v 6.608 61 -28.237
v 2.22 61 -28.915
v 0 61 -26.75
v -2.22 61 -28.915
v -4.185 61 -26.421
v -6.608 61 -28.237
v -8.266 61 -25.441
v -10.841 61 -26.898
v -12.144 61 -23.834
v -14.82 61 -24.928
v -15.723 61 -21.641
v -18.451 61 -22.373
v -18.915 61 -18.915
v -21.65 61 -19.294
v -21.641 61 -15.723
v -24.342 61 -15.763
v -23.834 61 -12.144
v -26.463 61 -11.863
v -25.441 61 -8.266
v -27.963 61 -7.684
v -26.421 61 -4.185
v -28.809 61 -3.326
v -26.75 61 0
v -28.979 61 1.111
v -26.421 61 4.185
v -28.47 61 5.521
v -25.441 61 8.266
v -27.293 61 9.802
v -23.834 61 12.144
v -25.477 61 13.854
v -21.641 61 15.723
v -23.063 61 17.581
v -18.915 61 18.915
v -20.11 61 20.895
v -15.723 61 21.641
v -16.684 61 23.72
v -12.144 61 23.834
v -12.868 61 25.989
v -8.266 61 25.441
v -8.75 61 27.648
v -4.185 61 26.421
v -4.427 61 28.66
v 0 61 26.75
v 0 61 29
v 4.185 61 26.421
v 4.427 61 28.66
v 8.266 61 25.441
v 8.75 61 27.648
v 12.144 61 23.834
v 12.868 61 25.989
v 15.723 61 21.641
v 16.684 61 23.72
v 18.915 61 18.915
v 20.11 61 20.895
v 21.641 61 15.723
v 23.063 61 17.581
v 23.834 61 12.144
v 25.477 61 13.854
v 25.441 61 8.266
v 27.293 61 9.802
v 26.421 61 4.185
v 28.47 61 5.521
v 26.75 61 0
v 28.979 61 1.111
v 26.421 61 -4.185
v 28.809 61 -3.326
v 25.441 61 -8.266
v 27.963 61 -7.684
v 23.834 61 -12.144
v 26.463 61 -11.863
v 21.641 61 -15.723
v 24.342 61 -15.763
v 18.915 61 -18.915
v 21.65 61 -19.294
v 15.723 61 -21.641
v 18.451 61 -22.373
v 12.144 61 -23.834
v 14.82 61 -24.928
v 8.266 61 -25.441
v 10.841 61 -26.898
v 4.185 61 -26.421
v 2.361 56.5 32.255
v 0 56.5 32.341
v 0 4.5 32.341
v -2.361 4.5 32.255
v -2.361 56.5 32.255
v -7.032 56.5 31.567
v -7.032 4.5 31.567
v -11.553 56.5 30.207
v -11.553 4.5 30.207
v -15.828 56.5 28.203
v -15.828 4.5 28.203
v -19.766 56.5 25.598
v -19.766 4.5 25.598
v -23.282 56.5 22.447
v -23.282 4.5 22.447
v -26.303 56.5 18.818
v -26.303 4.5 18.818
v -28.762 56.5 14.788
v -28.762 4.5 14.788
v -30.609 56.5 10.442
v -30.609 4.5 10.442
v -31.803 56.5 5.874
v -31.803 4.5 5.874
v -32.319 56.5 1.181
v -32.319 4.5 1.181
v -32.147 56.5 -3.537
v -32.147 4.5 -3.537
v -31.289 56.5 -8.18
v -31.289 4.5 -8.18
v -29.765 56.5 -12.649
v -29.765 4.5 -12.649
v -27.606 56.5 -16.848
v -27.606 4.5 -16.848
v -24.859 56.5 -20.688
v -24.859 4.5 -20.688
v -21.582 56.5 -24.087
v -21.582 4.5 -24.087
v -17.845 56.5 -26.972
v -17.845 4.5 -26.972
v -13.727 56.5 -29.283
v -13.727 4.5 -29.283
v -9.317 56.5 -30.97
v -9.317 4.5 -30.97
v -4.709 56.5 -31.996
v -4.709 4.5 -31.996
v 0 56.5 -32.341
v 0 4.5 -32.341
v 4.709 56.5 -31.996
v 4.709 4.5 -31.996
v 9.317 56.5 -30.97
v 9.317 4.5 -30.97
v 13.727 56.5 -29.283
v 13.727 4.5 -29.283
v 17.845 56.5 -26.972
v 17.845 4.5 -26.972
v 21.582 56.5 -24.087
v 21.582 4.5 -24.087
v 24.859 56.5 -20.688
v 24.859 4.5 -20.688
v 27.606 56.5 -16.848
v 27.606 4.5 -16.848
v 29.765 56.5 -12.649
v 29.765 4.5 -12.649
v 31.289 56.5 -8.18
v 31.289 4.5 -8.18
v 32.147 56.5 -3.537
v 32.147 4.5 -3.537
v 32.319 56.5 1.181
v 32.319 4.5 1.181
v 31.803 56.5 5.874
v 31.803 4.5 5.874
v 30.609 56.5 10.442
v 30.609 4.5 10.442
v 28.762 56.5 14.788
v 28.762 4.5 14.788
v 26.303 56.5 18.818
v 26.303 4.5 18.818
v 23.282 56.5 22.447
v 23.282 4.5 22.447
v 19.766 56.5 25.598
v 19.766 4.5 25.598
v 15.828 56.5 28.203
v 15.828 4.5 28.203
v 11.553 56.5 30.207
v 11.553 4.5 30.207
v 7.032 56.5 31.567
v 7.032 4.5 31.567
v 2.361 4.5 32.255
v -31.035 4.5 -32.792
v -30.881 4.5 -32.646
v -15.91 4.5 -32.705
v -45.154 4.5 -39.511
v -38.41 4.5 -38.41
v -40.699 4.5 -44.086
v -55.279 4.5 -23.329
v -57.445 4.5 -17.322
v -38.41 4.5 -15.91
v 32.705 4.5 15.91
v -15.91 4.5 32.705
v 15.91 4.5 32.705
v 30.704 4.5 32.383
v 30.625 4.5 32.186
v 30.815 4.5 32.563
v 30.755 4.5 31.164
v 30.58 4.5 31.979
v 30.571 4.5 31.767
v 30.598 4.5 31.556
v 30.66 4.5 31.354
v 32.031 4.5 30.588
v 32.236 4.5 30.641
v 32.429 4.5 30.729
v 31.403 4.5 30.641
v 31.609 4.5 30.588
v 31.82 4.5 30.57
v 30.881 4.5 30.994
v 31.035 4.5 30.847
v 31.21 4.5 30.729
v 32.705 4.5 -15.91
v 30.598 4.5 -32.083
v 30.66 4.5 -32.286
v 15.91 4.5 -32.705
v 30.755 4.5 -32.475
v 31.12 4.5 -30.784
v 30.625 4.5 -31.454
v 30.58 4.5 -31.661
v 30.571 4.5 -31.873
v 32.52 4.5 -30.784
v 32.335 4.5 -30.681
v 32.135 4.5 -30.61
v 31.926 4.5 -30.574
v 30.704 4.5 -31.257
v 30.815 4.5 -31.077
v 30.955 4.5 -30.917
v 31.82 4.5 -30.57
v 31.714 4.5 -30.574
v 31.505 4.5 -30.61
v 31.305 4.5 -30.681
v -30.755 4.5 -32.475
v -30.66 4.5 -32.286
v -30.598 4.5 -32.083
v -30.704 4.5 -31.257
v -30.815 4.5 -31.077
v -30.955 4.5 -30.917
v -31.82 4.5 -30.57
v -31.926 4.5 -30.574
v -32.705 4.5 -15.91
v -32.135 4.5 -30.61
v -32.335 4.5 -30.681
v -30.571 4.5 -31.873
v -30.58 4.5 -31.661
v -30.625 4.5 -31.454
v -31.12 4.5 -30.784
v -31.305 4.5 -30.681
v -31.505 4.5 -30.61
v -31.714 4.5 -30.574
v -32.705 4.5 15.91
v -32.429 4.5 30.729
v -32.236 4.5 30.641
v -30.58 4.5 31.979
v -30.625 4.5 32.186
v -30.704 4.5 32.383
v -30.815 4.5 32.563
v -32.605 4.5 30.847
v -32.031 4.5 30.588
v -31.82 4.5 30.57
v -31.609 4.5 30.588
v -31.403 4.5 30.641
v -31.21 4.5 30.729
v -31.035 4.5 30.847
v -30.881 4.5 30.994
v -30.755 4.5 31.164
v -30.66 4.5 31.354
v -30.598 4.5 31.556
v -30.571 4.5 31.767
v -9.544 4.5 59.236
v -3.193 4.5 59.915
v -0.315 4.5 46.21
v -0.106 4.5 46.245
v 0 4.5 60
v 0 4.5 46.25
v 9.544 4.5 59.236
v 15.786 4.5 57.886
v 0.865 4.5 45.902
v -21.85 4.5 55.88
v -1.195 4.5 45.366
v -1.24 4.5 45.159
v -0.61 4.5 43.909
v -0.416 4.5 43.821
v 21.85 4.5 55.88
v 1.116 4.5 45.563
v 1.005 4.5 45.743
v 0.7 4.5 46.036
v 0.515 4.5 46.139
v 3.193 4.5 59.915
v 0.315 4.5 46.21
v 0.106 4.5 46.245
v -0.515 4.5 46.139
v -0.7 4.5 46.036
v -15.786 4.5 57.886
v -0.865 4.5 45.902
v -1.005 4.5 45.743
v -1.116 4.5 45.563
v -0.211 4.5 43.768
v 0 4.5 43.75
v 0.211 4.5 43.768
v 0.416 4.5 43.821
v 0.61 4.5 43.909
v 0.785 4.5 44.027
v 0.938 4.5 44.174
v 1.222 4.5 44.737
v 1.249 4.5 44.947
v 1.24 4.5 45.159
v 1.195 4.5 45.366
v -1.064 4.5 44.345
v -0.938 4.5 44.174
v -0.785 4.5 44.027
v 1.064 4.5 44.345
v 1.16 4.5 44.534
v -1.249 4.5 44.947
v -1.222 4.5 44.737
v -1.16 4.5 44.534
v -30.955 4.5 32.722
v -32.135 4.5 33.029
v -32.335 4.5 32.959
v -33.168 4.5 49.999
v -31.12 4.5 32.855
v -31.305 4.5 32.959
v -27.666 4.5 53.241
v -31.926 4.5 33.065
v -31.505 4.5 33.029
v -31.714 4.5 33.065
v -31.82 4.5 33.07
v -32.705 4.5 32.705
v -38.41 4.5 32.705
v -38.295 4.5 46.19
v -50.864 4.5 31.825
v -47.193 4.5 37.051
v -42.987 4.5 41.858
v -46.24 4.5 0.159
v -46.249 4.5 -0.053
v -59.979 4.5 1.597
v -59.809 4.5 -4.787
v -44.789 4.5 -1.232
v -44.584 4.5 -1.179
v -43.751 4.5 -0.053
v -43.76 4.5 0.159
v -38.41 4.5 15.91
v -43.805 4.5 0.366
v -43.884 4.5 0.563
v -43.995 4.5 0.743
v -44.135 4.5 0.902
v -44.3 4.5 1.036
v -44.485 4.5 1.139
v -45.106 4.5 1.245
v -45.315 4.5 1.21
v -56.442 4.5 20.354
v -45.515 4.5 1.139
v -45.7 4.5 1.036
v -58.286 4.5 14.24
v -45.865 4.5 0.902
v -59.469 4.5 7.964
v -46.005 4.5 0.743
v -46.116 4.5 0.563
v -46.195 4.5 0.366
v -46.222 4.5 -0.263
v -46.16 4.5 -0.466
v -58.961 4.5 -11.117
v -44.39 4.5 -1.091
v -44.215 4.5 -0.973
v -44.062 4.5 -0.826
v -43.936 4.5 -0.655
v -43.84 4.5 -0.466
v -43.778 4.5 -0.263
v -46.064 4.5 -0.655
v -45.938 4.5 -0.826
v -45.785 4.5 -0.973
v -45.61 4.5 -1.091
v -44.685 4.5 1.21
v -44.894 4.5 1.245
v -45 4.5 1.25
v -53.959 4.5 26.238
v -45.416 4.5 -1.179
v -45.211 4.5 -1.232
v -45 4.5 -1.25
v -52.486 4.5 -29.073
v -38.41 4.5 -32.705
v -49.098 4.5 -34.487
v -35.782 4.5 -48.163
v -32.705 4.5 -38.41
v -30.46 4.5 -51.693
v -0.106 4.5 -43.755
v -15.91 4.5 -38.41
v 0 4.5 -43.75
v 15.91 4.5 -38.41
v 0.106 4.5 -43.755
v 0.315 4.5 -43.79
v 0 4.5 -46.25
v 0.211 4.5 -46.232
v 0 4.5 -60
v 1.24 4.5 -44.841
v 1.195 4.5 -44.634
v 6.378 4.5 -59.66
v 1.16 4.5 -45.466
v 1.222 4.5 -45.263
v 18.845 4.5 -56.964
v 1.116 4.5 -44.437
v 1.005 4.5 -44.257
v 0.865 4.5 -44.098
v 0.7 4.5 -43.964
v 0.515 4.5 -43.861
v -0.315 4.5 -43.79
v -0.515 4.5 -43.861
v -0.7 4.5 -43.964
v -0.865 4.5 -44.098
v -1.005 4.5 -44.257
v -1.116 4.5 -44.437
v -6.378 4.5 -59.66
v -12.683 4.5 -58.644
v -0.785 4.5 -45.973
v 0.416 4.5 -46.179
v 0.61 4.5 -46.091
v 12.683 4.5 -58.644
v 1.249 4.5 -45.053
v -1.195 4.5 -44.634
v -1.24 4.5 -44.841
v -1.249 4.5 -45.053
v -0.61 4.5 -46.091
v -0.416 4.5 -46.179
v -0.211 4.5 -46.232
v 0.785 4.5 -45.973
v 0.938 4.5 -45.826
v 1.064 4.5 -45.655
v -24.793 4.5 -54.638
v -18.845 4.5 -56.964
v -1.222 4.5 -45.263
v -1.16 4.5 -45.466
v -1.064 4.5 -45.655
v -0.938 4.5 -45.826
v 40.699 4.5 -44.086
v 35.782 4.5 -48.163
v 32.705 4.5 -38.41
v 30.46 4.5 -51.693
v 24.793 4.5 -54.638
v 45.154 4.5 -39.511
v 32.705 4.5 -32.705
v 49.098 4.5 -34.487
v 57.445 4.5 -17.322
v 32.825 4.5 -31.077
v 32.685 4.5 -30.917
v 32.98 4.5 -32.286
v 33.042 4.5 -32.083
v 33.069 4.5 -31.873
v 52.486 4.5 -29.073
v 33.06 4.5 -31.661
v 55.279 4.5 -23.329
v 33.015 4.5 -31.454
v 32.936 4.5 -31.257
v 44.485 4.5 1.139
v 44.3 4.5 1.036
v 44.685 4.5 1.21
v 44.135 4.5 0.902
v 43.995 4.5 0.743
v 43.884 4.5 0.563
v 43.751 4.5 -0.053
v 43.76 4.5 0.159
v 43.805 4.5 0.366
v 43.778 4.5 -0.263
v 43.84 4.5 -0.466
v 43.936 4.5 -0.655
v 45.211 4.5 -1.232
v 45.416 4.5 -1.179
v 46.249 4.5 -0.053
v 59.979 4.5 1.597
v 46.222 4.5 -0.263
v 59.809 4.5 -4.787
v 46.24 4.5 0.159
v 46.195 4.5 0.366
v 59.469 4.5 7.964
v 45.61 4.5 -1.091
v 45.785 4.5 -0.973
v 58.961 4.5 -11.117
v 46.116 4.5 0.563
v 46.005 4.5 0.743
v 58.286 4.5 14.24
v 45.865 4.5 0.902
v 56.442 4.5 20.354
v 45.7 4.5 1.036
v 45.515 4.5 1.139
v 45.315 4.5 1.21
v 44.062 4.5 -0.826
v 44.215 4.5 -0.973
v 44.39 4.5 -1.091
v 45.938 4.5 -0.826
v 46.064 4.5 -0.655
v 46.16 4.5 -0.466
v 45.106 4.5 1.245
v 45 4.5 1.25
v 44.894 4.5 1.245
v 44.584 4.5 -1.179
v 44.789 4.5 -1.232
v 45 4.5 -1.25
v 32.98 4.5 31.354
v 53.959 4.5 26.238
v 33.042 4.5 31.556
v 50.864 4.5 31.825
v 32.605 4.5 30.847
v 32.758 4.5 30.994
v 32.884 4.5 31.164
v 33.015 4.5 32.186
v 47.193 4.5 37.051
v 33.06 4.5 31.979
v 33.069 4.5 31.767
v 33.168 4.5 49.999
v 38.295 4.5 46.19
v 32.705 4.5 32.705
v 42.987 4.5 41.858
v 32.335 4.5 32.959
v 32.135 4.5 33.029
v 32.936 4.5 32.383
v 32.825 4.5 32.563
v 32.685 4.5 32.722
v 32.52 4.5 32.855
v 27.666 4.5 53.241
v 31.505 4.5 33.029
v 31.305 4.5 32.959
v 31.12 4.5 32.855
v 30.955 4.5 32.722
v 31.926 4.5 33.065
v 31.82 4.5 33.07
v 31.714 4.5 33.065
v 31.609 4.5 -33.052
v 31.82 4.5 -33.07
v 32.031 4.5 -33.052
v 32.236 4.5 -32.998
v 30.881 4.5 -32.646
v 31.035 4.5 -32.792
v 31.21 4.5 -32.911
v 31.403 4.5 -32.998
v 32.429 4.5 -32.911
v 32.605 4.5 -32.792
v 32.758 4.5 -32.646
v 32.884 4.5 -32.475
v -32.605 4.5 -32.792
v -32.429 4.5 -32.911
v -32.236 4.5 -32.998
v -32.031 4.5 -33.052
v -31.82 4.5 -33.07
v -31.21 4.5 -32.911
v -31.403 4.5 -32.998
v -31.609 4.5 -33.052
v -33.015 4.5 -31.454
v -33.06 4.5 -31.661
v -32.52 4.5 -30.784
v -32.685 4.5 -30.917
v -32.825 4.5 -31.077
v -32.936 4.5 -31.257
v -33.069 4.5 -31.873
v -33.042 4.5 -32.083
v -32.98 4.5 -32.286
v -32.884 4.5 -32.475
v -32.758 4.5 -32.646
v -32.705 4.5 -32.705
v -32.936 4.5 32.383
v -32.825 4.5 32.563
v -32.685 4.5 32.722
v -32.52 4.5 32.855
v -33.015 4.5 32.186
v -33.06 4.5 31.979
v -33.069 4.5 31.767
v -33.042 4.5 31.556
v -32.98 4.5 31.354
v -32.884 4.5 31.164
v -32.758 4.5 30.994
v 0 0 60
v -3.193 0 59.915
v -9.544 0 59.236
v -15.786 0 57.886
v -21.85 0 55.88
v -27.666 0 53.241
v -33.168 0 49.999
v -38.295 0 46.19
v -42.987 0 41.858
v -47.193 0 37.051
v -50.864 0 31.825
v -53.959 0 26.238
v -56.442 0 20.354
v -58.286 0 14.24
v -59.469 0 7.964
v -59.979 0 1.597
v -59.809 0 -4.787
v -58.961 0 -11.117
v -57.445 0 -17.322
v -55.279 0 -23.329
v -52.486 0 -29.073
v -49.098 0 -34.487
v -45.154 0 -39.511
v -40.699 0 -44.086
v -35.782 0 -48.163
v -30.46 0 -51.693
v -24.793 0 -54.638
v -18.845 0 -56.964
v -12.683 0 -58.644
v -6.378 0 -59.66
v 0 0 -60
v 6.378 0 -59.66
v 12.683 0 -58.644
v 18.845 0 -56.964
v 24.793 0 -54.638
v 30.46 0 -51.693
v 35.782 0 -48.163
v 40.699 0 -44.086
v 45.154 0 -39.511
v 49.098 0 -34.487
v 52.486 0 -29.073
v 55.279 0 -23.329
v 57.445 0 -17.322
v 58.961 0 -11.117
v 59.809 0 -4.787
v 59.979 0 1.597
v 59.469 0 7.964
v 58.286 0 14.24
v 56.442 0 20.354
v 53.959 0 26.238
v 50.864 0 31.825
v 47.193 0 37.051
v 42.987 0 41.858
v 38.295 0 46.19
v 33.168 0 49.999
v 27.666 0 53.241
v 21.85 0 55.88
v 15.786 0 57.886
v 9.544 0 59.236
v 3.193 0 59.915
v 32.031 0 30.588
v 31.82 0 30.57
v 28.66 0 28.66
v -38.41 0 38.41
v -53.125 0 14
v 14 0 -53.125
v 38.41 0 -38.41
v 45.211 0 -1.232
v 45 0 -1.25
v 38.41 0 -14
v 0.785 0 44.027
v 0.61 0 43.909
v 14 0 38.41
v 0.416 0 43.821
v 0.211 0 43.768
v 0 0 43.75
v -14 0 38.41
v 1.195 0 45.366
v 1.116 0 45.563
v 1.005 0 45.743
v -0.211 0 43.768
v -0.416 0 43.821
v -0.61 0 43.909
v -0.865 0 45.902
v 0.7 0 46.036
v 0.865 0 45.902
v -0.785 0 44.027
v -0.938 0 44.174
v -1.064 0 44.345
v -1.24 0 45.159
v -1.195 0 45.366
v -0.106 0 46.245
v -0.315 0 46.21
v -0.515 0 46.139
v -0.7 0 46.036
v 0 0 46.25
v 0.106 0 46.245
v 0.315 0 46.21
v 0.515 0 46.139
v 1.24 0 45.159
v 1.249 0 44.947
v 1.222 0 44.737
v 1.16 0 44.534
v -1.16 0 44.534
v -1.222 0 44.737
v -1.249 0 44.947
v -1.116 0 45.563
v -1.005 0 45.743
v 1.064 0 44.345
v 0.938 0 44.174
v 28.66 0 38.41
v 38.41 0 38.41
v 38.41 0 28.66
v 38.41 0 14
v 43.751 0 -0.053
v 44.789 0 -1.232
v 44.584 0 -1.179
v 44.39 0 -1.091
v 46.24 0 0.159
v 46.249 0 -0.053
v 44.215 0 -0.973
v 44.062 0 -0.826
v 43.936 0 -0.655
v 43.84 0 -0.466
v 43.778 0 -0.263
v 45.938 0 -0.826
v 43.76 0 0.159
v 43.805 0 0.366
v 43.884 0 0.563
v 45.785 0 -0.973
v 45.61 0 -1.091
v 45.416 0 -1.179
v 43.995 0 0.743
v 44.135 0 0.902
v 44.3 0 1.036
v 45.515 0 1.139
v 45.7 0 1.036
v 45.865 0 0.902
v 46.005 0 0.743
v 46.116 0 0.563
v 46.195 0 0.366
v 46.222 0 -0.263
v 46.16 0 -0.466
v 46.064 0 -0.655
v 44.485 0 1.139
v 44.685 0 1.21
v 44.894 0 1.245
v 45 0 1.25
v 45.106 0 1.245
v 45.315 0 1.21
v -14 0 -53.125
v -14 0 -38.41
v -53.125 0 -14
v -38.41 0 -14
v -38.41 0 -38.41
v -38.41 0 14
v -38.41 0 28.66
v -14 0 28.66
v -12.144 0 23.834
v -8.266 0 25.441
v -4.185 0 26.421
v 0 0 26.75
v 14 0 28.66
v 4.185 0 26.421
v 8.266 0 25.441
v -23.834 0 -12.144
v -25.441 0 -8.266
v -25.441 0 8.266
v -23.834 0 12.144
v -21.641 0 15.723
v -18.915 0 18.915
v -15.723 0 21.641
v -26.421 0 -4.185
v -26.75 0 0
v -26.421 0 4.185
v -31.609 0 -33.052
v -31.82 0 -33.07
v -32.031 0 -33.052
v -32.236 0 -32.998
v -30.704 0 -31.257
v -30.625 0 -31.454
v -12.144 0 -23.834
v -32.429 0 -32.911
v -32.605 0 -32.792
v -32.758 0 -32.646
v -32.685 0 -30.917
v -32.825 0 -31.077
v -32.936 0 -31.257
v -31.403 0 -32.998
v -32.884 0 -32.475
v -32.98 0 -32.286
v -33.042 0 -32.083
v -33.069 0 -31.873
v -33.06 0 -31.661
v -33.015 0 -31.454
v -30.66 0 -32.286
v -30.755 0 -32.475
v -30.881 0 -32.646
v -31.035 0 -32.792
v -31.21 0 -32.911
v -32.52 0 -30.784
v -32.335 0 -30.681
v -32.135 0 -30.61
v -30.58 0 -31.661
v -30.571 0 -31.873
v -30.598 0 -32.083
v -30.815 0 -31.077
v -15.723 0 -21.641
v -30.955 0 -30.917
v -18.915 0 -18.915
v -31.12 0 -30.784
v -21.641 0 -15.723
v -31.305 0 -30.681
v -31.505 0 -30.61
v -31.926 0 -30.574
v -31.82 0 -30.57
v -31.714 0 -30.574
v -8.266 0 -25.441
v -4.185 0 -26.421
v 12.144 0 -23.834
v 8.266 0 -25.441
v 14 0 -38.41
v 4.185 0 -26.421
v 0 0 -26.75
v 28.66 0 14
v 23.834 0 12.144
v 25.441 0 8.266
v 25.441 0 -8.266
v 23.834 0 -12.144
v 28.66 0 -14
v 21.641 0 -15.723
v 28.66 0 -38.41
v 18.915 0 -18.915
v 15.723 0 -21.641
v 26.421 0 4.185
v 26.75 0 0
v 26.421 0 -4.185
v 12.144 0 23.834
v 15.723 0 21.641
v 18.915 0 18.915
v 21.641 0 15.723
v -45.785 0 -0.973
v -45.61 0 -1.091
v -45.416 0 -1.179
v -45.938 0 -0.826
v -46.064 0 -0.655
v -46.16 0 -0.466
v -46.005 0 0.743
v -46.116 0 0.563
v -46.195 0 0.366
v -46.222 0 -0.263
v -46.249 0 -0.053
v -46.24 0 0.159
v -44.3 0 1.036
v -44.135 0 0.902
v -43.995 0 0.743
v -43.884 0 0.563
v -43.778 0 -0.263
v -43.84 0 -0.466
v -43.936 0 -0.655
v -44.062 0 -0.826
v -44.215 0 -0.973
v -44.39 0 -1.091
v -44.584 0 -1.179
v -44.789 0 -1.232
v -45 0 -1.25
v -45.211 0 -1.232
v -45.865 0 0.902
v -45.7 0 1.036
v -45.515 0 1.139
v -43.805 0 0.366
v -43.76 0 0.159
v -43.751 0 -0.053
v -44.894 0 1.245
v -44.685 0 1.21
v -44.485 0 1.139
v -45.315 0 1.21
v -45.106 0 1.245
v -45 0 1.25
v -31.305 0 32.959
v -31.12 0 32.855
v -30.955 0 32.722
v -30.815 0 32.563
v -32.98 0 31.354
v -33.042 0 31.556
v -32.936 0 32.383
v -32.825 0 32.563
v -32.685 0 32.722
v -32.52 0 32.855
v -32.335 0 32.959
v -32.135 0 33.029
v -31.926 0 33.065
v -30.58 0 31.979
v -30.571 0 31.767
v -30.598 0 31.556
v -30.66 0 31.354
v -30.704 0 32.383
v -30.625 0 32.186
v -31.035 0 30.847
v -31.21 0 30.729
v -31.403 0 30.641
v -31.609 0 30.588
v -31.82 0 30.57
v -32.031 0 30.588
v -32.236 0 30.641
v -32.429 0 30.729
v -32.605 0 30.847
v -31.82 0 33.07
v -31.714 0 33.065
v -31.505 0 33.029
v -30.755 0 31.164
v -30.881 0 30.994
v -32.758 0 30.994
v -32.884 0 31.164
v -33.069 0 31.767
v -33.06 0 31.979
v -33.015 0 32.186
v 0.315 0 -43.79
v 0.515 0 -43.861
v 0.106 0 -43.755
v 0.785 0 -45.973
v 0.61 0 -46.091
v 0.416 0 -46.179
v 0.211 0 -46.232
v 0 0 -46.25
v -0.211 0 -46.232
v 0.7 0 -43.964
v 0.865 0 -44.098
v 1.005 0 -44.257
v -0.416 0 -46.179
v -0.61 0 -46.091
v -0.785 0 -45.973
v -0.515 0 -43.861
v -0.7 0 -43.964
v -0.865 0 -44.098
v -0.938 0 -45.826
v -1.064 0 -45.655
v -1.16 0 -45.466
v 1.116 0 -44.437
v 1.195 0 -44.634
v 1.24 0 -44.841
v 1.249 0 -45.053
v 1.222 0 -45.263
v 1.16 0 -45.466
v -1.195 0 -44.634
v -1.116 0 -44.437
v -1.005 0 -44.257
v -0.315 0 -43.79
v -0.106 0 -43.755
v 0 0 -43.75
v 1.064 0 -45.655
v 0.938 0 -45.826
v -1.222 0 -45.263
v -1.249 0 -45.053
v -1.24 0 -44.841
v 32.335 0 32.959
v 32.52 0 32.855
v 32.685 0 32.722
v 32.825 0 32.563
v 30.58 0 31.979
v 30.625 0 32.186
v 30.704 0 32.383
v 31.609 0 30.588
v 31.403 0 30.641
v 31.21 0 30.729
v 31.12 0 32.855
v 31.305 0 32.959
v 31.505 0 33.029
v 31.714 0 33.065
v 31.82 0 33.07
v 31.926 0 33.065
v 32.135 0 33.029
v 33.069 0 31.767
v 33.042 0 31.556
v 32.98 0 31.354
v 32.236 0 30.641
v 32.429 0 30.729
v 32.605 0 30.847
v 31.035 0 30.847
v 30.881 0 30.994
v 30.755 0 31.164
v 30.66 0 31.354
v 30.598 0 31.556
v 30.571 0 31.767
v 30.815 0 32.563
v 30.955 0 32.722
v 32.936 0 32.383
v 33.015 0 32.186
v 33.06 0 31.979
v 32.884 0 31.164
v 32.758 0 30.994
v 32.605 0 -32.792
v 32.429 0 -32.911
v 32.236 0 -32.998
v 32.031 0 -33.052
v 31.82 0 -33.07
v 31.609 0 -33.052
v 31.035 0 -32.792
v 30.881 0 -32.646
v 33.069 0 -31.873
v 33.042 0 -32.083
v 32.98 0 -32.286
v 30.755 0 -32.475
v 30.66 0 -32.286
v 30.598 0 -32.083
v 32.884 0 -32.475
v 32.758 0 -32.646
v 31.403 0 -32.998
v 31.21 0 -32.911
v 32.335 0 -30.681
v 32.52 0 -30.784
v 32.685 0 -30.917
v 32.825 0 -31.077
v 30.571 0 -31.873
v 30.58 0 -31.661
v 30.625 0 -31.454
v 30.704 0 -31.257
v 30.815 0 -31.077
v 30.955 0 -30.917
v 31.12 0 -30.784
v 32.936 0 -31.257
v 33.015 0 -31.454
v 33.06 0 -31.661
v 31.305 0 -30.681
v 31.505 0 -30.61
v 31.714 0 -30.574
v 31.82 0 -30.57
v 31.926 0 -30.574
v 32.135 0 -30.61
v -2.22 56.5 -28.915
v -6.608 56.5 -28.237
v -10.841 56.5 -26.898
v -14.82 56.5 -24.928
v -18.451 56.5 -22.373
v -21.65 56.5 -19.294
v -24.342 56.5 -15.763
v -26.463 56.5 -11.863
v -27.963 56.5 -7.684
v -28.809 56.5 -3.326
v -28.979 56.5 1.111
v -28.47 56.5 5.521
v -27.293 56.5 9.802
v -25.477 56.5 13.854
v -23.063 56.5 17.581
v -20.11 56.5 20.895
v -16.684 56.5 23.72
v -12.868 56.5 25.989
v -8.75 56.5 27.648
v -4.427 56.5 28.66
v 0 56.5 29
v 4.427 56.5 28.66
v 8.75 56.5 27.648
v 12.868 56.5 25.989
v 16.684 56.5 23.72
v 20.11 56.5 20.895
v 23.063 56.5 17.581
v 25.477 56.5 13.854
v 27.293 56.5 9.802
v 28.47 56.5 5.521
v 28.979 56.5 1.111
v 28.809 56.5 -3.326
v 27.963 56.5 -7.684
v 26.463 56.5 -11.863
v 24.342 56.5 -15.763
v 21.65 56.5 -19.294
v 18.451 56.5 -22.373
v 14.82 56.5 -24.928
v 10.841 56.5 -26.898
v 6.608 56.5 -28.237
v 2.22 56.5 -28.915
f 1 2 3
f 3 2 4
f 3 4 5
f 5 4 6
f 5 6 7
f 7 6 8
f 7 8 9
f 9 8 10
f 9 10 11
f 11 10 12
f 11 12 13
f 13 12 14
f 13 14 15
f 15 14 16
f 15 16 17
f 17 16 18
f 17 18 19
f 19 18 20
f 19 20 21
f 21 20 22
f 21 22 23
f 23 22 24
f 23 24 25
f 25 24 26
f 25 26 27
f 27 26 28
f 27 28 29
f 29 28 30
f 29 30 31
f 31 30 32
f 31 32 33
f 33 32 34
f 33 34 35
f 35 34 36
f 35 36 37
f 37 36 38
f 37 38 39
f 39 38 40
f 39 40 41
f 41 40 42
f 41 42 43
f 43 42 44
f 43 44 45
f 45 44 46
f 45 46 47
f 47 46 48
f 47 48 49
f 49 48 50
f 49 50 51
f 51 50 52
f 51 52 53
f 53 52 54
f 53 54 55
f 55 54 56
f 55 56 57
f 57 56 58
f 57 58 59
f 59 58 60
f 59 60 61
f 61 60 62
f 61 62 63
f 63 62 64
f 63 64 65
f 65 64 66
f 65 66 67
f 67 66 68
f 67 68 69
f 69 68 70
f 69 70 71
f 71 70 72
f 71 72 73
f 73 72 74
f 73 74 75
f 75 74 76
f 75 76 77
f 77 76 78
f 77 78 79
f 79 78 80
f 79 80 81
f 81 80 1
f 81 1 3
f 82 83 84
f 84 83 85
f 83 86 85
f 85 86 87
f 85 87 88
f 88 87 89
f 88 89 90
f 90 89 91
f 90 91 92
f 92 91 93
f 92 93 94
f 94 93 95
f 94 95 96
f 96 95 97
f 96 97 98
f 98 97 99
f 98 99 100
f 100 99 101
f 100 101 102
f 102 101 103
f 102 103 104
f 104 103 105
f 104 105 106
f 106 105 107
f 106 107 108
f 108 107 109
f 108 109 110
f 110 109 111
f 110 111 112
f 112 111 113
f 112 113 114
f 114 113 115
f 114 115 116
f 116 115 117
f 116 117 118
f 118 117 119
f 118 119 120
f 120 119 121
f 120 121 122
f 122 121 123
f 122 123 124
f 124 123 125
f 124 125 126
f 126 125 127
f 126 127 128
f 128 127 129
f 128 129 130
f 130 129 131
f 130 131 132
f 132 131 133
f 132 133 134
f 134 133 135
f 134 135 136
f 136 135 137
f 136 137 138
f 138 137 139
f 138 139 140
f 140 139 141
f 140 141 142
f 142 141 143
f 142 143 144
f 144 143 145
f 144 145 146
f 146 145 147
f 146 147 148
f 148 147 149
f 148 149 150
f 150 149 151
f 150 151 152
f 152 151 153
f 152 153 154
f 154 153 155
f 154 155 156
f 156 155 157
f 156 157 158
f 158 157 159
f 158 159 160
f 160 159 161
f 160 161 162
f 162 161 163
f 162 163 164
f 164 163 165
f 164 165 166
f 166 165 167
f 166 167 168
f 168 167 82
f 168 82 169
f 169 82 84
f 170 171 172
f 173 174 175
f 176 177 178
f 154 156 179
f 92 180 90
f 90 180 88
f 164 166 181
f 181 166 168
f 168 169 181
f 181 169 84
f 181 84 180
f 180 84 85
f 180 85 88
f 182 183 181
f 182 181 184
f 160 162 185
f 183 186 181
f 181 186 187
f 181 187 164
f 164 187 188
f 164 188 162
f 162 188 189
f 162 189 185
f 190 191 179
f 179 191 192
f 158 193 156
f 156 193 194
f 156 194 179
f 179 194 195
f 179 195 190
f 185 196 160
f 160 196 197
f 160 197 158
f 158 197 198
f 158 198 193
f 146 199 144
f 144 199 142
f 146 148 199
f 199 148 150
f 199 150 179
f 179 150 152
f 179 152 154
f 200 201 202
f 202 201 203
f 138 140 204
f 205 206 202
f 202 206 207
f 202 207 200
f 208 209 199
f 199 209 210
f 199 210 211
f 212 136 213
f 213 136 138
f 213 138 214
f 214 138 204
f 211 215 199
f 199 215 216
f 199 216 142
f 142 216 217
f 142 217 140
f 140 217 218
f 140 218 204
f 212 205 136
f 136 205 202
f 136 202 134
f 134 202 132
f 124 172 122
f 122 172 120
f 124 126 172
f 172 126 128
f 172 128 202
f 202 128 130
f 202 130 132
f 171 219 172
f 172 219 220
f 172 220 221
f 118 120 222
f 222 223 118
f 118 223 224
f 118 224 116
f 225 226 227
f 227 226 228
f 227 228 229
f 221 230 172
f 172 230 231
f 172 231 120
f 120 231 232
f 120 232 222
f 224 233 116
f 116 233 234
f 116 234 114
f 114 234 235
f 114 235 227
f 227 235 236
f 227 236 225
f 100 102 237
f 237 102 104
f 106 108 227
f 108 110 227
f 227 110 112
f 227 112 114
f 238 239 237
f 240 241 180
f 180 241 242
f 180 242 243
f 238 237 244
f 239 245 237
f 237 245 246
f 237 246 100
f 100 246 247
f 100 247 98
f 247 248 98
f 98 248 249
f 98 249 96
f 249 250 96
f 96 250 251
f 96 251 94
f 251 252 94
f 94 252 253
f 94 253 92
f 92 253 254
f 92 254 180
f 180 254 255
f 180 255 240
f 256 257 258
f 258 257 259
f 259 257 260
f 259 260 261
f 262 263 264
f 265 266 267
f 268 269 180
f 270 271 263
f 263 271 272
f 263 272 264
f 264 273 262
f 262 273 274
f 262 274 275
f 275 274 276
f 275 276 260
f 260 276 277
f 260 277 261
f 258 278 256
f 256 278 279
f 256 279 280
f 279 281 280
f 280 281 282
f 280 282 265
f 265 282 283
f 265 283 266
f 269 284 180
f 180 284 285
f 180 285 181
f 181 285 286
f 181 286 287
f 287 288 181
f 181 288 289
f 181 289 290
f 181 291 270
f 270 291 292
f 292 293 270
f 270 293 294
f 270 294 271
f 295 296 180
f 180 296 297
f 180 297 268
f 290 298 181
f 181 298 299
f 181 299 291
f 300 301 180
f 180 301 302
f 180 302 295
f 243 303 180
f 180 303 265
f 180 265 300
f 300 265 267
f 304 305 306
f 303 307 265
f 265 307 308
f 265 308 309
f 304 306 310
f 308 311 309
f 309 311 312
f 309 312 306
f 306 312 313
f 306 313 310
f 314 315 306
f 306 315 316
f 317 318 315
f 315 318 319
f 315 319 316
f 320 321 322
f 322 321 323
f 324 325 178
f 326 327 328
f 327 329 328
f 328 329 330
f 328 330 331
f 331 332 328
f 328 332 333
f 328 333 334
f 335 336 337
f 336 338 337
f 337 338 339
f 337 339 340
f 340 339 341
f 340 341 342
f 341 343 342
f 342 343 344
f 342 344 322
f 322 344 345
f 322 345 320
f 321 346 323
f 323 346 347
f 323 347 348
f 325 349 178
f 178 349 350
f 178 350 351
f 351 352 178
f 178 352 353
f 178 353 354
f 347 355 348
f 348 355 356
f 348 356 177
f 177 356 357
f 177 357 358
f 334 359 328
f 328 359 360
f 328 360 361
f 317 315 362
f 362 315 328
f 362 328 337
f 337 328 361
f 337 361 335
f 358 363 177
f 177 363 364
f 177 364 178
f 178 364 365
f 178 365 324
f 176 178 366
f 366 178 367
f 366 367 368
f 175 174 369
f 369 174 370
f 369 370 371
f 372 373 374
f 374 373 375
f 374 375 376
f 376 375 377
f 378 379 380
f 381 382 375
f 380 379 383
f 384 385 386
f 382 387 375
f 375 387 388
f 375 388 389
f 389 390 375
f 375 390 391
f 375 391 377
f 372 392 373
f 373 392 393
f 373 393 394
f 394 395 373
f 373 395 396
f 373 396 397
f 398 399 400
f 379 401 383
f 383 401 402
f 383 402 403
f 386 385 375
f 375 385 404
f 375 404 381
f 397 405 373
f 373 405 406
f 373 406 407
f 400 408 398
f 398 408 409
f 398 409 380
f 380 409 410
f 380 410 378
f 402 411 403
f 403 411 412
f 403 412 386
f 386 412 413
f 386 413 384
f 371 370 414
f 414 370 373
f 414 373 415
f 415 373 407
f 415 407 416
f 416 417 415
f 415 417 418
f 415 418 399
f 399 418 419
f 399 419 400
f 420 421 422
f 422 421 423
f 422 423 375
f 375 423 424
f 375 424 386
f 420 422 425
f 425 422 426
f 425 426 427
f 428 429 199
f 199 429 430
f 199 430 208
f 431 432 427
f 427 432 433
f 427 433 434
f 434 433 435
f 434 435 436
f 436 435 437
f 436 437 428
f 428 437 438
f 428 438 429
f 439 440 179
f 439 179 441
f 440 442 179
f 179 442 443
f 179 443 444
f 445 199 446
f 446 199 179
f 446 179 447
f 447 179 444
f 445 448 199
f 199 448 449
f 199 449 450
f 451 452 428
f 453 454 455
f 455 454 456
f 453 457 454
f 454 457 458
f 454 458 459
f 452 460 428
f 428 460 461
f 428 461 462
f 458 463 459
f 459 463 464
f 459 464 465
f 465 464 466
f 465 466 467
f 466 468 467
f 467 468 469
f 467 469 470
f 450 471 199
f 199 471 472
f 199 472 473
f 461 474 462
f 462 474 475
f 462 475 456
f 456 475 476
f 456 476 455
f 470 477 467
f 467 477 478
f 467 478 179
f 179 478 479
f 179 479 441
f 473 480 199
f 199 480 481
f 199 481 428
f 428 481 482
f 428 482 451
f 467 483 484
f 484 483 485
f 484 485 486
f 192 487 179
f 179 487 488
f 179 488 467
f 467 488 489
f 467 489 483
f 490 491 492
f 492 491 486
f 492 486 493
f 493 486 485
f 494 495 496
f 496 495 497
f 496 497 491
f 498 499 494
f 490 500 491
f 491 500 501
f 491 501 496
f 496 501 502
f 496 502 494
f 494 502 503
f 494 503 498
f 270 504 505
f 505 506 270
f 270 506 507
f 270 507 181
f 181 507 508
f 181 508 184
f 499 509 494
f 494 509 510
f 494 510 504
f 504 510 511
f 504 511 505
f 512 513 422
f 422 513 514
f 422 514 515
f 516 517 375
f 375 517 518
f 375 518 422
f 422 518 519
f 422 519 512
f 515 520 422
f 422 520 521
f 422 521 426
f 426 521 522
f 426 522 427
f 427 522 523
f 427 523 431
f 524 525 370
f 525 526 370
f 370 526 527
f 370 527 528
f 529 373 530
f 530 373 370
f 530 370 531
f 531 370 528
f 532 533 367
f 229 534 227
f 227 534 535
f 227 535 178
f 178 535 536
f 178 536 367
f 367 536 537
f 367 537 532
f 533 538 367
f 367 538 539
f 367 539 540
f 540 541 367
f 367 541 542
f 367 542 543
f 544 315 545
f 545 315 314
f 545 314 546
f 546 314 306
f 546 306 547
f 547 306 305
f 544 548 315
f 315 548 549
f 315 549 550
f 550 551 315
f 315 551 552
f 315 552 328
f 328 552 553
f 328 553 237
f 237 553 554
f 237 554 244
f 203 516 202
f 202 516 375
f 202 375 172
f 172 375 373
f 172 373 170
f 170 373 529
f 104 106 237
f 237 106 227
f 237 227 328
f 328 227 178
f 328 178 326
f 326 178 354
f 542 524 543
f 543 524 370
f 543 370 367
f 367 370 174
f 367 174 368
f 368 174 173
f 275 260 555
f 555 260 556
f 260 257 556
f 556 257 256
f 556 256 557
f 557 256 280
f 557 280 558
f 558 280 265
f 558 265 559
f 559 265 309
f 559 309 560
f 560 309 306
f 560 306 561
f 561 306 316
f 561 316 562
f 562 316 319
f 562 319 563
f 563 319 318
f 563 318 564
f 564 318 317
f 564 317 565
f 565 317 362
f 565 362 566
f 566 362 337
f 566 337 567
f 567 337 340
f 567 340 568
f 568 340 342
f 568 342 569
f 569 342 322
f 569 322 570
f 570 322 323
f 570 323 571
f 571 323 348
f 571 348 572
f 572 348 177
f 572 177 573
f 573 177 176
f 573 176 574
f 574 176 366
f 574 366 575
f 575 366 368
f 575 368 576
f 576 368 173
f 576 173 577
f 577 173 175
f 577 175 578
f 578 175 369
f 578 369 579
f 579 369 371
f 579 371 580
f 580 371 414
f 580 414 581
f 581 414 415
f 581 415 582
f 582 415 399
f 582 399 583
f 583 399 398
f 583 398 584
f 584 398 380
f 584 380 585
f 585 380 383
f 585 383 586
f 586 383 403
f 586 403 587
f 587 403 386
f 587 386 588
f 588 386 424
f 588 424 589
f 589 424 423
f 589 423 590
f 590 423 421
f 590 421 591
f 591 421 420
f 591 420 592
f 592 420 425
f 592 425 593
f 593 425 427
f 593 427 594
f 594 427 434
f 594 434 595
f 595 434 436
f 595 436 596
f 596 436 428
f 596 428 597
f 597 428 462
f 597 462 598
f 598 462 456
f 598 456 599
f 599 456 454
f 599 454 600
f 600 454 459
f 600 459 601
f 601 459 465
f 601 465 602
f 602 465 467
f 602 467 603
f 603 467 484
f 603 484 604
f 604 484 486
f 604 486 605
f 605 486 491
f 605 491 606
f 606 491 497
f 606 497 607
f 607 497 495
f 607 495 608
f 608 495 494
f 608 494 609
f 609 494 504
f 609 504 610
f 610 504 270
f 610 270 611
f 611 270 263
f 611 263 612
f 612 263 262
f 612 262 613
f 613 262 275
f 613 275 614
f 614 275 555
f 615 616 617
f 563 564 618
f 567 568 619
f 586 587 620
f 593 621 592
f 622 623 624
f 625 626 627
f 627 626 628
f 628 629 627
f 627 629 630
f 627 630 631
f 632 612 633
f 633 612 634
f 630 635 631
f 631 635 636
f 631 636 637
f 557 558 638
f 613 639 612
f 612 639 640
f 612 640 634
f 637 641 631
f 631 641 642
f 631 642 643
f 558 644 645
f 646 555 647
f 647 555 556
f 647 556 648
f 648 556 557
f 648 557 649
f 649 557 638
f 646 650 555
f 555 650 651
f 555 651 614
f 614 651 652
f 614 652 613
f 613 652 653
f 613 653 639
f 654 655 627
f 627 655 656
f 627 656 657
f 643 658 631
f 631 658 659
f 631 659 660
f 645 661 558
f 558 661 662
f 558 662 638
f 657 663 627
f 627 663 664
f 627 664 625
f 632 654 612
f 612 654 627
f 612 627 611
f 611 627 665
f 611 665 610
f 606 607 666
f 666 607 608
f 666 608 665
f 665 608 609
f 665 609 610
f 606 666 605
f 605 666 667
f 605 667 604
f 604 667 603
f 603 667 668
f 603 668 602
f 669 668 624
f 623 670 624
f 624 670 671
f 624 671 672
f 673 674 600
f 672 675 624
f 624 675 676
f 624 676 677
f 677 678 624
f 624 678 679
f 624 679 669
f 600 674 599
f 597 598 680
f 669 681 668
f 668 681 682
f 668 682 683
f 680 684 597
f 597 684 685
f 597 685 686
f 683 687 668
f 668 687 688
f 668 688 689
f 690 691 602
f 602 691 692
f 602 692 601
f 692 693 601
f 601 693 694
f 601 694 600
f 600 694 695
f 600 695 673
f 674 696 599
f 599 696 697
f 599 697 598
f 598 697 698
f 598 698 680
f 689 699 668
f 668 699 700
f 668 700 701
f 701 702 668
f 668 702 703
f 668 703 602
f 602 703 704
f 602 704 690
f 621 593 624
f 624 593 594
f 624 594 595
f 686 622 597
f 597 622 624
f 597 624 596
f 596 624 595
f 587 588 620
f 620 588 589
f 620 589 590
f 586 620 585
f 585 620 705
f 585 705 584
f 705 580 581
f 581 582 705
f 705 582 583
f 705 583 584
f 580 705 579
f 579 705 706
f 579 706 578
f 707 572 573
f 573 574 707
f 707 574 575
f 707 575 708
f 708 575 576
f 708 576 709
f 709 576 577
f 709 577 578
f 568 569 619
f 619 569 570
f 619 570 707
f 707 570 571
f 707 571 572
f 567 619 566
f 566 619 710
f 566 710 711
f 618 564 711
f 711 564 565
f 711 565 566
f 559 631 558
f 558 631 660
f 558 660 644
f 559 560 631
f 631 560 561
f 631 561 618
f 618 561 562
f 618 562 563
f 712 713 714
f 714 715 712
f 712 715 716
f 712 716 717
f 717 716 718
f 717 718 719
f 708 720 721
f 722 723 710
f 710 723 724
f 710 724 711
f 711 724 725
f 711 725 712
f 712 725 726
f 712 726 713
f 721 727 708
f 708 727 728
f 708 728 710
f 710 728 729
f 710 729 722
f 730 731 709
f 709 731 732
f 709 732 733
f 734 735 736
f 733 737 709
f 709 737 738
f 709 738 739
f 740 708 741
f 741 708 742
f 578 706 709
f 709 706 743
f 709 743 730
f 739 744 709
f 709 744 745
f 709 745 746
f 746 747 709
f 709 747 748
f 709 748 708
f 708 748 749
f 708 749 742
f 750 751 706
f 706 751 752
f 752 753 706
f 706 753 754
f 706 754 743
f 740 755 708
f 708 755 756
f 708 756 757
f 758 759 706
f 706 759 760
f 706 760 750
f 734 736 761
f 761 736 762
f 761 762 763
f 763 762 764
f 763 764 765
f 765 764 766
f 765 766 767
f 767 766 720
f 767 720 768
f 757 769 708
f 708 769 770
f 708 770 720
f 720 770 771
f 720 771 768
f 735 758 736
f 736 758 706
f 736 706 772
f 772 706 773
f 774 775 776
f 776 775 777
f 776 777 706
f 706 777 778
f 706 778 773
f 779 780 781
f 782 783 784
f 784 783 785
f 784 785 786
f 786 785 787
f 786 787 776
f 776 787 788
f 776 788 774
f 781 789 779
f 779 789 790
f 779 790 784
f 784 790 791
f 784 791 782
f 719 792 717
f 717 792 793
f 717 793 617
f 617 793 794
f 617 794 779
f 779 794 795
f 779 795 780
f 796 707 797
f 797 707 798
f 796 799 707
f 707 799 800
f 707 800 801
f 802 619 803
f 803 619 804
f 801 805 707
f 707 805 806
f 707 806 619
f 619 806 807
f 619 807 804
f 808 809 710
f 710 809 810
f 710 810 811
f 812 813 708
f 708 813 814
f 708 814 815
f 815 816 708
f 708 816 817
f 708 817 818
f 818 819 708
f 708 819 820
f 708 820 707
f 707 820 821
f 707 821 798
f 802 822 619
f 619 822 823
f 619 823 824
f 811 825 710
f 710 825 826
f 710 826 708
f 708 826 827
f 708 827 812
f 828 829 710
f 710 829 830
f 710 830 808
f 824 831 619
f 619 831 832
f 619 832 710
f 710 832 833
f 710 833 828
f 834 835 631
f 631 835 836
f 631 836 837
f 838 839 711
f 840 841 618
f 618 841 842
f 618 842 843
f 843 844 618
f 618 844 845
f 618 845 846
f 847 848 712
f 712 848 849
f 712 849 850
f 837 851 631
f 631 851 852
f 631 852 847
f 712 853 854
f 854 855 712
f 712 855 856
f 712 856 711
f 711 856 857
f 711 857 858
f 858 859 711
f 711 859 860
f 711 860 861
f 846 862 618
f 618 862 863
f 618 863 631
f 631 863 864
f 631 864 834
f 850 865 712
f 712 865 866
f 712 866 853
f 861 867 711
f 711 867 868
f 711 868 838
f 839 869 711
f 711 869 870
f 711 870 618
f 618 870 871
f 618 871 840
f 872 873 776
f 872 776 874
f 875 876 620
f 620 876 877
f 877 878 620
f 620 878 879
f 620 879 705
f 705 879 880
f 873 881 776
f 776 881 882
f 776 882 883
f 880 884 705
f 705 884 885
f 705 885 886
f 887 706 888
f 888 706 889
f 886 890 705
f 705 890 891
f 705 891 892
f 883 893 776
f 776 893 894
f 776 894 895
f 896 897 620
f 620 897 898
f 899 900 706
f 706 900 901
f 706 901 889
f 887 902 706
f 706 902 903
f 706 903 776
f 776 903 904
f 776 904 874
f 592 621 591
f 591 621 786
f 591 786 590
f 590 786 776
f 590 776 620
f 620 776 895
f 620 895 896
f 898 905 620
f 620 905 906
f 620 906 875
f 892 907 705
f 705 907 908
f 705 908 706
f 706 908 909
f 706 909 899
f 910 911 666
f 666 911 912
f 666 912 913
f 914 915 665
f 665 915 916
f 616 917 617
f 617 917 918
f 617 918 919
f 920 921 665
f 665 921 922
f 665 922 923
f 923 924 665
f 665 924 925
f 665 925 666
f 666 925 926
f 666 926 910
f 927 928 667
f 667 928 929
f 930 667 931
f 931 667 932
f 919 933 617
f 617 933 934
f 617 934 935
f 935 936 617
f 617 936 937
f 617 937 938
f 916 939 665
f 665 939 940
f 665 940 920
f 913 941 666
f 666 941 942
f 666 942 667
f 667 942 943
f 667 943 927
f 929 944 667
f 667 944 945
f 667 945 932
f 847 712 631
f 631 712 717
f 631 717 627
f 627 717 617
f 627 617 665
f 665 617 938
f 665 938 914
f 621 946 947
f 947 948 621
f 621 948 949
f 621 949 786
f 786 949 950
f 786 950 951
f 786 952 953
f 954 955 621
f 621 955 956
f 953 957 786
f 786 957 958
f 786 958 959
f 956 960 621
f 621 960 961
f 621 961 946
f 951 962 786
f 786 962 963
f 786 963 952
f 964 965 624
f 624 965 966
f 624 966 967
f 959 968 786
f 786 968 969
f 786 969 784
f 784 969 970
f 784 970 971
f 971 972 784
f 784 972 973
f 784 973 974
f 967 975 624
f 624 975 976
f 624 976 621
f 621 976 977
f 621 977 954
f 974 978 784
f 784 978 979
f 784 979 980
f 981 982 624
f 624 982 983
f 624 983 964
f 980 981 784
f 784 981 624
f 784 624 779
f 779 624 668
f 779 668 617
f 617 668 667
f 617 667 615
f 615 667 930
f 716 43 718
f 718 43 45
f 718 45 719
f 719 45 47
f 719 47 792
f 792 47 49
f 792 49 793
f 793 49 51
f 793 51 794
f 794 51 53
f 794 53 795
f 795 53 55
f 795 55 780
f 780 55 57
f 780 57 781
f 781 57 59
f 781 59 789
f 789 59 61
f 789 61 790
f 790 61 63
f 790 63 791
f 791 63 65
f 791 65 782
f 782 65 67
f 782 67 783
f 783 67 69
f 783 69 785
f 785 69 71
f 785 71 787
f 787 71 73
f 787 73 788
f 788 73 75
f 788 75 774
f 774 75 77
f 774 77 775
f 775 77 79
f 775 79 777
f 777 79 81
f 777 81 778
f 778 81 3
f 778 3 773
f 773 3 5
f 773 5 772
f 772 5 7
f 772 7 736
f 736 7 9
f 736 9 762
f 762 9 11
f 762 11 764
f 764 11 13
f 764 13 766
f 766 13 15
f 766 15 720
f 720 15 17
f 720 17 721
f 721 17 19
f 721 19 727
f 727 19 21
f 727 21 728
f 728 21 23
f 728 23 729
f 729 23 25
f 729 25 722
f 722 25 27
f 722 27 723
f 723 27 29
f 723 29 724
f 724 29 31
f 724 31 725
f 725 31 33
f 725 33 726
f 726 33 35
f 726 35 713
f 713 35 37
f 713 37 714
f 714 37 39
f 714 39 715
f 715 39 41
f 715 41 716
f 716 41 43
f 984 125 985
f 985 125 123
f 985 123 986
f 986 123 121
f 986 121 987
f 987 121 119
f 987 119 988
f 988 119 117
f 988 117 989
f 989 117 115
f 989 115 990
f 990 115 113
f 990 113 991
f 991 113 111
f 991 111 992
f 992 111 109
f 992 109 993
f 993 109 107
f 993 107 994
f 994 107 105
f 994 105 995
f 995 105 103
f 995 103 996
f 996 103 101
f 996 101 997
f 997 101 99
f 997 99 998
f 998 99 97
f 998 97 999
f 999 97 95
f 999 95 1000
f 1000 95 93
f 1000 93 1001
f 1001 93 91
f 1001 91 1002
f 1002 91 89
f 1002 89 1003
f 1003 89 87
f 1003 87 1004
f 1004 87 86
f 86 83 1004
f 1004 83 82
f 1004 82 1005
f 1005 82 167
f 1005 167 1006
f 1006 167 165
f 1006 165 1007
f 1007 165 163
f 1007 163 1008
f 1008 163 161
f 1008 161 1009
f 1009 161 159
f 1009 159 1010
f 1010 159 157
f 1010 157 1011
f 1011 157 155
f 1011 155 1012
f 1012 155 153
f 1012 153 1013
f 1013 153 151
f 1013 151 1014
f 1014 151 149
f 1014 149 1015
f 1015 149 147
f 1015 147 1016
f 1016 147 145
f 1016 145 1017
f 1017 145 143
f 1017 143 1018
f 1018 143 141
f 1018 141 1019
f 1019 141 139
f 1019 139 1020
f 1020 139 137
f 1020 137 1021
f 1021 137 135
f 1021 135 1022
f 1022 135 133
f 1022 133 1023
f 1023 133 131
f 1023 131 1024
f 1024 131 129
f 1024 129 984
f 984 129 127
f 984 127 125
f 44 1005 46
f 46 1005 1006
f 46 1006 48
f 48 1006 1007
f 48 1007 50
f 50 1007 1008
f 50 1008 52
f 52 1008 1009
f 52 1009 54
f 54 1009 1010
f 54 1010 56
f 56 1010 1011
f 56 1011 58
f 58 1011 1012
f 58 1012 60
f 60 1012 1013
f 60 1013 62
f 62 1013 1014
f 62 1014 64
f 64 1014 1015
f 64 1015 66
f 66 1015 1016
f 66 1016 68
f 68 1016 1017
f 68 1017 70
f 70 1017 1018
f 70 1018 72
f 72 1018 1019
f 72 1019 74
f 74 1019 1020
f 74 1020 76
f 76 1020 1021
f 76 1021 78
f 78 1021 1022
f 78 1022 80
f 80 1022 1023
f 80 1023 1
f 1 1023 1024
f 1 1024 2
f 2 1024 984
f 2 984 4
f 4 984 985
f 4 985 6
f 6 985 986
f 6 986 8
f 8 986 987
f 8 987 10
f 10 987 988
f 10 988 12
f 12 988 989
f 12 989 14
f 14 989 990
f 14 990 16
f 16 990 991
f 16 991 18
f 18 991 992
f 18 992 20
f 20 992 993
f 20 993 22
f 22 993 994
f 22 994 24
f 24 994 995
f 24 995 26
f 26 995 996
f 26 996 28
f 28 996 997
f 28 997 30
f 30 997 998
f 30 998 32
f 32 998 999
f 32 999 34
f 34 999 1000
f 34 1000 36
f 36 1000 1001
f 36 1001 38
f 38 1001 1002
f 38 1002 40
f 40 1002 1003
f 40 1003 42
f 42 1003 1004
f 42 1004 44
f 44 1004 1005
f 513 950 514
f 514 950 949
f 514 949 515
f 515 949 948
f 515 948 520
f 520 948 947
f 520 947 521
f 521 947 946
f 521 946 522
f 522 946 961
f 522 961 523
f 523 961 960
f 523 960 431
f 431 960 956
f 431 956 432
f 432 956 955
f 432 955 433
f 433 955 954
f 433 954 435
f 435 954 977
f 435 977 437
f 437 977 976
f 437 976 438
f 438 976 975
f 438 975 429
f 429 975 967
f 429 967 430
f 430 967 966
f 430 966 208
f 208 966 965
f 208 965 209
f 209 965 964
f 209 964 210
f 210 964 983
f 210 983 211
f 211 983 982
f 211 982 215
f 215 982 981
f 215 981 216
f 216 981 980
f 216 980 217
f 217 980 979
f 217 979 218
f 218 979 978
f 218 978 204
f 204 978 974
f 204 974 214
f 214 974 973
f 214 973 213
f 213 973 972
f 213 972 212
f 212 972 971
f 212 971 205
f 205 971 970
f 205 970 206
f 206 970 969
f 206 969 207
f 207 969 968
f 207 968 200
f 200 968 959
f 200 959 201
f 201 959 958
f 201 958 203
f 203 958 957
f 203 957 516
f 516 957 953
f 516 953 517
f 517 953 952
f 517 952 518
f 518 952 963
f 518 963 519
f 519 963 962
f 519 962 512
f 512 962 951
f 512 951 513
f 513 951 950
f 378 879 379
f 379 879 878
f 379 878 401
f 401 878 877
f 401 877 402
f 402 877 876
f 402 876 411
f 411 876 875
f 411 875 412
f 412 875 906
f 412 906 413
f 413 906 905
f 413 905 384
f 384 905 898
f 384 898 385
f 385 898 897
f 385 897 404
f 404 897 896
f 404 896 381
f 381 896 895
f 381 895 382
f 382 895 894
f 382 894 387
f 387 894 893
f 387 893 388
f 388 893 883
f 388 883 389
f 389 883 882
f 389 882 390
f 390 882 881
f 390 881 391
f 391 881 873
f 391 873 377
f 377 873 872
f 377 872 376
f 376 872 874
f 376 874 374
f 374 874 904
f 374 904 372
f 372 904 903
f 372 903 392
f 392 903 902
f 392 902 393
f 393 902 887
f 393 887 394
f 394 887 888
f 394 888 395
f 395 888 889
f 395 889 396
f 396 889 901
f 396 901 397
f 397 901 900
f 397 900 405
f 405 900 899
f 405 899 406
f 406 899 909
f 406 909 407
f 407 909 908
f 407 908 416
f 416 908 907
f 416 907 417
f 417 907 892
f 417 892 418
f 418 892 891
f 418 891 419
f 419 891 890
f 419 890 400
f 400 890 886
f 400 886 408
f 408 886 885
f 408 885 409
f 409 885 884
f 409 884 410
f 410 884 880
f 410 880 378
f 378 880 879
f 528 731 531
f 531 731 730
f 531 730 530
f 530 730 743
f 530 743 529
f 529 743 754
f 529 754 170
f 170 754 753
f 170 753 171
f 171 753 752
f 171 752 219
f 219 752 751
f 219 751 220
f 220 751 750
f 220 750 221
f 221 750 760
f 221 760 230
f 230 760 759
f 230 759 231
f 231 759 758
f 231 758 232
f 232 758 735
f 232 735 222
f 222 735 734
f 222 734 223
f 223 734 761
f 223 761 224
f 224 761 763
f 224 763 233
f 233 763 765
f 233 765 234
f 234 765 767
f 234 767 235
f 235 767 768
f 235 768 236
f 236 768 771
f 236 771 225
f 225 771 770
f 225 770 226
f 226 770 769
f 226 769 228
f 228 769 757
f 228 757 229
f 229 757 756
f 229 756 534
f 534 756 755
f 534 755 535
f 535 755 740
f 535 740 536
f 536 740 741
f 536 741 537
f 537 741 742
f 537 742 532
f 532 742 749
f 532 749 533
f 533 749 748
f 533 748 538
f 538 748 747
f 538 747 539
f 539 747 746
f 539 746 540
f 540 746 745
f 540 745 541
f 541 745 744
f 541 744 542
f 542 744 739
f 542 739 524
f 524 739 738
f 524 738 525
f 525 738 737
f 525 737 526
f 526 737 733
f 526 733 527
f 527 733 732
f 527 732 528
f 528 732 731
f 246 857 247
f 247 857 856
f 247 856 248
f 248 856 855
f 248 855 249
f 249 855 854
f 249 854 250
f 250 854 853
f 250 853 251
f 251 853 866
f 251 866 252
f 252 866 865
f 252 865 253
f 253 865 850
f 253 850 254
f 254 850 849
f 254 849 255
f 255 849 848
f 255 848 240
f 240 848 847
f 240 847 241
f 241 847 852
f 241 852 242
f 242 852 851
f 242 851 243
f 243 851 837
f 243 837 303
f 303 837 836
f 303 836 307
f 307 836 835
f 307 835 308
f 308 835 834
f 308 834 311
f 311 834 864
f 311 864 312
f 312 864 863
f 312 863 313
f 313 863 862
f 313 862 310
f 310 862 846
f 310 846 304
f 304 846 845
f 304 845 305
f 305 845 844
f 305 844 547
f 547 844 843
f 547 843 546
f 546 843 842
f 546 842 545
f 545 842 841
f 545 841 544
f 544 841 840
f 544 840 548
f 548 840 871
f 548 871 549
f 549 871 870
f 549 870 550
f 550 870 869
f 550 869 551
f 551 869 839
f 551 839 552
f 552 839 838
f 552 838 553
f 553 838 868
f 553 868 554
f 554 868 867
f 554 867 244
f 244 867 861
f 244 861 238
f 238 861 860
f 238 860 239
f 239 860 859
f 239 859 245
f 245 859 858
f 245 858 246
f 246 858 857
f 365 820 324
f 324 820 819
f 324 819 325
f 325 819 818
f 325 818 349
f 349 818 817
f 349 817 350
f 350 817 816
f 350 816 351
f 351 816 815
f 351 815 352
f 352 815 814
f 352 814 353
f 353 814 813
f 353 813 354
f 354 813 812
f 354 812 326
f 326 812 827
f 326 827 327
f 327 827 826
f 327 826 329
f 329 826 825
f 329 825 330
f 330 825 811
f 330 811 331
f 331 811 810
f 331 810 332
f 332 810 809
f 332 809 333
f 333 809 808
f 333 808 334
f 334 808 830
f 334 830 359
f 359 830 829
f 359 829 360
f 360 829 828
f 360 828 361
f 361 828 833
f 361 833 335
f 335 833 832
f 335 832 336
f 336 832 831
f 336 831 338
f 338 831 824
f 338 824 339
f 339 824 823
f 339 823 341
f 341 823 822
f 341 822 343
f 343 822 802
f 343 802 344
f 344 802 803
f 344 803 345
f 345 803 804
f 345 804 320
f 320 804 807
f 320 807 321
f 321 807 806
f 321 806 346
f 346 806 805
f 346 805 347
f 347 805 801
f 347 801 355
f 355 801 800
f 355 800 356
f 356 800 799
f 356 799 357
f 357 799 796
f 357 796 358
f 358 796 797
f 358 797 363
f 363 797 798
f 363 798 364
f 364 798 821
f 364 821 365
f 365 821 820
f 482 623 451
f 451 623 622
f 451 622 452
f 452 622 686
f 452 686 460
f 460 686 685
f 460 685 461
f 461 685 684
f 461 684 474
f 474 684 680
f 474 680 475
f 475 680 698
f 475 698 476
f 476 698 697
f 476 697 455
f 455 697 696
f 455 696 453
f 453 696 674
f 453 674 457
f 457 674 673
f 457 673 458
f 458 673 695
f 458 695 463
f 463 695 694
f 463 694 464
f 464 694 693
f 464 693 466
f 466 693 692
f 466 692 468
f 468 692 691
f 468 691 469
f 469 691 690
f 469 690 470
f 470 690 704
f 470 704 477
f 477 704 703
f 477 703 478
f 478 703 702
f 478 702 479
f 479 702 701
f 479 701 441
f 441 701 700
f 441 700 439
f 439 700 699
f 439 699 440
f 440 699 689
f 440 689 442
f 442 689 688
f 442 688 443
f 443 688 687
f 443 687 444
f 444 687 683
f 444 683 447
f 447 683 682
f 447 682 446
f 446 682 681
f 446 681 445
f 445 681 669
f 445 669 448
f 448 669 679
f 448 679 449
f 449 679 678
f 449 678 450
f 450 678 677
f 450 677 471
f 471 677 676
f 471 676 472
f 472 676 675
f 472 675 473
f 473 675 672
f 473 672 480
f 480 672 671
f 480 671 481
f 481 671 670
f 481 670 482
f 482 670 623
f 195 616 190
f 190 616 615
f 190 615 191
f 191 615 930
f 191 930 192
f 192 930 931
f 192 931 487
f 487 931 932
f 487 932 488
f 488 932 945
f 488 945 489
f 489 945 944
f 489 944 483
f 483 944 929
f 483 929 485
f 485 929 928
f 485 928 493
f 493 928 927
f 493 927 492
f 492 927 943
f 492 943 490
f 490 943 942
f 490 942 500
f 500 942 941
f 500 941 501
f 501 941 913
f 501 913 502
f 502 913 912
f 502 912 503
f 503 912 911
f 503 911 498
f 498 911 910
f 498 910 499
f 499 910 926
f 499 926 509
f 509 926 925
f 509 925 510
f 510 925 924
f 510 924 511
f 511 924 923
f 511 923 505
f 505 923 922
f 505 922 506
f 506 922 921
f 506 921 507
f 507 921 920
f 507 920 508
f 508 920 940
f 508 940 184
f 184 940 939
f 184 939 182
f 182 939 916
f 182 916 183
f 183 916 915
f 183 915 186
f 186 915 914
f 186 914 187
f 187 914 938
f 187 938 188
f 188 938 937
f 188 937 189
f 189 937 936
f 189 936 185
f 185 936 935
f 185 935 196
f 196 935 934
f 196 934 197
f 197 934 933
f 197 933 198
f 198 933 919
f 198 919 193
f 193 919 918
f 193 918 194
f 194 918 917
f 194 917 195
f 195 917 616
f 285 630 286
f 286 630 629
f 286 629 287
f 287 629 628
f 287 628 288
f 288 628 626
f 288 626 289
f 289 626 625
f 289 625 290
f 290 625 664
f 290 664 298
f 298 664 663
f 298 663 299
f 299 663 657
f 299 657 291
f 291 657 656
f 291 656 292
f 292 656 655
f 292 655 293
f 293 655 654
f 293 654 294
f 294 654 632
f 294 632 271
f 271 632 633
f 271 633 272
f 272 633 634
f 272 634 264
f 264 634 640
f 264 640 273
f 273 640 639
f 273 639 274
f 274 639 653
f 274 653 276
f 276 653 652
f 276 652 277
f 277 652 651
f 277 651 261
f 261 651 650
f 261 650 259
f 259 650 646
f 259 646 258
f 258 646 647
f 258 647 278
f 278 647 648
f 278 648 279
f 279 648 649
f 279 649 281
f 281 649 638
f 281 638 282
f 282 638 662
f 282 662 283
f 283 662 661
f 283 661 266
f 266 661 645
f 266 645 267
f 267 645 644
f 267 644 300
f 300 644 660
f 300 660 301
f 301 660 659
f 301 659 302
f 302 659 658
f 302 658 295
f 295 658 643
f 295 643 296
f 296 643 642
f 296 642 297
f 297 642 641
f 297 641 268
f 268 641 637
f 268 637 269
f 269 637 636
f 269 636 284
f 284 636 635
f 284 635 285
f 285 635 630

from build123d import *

# Parameters (mm, degrees)
SKETCH1_R               = 60
BOSS_EXTRUDE1_DEPTH     = 4.5
SKETCH2_R               = 29.275
BOSS_EXTRUDE2_DEPTH     = 56.5
CUT_EXTRUDE1_DEPTH      = 105.503588455
CUT_EXTRUDE1_DEPTH_BACK = 105.503588455
SKETCH3_R               = 26.75
SKETCH4_R               = 32.341067561
SKETCH4_R_2             = 29.275
BOSS_EXTRUDE3_DEPTH     = 56.5
CUT_EXTRUDE2_START      = -4.5
SKETCH5_R               = 32.341067561
SKETCH5_R_2             = 29
CUT_EXTRUDE2_DEPTH      = 4.5
CUT_EXTRUDE3_DEPTH      = 105.503588455
CUT_EXTRUDE3_DEPTH_BACK = 105.503588455
SKETCH6_R               = 1.25


with BuildPart() as part:
    # Sketch1 → Boss-Extrude1 (new body)
    with BuildSketch(Plane(origin=(0, 0, 0), x_dir=(1, 0, 0), z_dir=(0, 1, 0))):
        with Locations(Location((0, 0, 0), (0, 0, 270))):
            Circle(SKETCH1_R)
    extrude(amount=BOSS_EXTRUDE1_DEPTH)

    # Sketch2 → Boss-Extrude2 (add)
    with BuildSketch(Plane(origin=(0, 4.5, 0), x_dir=(1, 0, 0), z_dir=(0, 1, 0))):
        with Locations(Location((0, 0, 0), (0, 0, 270))):
            Circle(SKETCH2_R)
    extrude(amount=BOSS_EXTRUDE2_DEPTH)

    # Sketch3 → Cut-Extrude1 (cut, two sides: drawn at the far end of the back side and taken through both)
    with BuildSketch(Plane(origin=(0, 61, 0), x_dir=(1, 0, 0), z_dir=(0, 1, 0)).offset(-CUT_EXTRUDE1_DEPTH_BACK)):
        with Locations(Location((0, 0, 0), (0, 0, 270))):
            Circle(SKETCH3_R)
    extrude(amount=CUT_EXTRUDE1_DEPTH + CUT_EXTRUDE1_DEPTH_BACK, mode=Mode.SUBTRACT)

    # Sketch4 → Boss-Extrude3 (add)
    with BuildSketch(Plane(origin=(0, 4.5, 0), x_dir=(1, 0, 0), z_dir=(0, 1, 0))):
        with Locations(Location((0, 0, 0), (0, 0, 270))):
            Circle(SKETCH4_R)
        Circle(SKETCH4_R_2, mode=Mode.SUBTRACT)
    extrude(amount=BOSS_EXTRUDE3_DEPTH)

    # Sketch5 → Cut-Extrude2 (cut)
    with BuildSketch(Plane(origin=(0, 61, 0), x_dir=(1, 0, 0), z_dir=(0, 1, 0)).offset(CUT_EXTRUDE2_START)):
        with Locations(Location((0, 0, 0), (0, 0, 270))):
            Circle(SKETCH5_R)
        with Locations(Location((0, 0, 0), (0, 0, 270))):
            Circle(SKETCH5_R_2, mode=Mode.SUBTRACT)
    extrude(amount=CUT_EXTRUDE2_DEPTH, mode=Mode.SUBTRACT)

    # Sketch6 → Cut-Extrude3 (cut, two sides: drawn at the far end of the back side and taken through both)
    with BuildSketch(Plane.XZ.offset(-CUT_EXTRUDE3_DEPTH_BACK)):
        with Locations(Location((31.819805153, -31.819805153, 0), (0, 0, 270))):
            Circle(SKETCH6_R)
        with Locations(Location((0, 45, 0), (0, 0, 270))):
            Circle(SKETCH6_R)
        with Locations(Location((31.819805153, 31.819805153, 0), (0, 0, 270))):
            Circle(SKETCH6_R)
        with Locations(Location((45, 0, 0), (0, 0, 270))):
            Circle(SKETCH6_R)
        with Locations(Location((-31.819805153, 31.819805153, 0), (0, 0, 270))):
            Circle(SKETCH6_R)
        with Locations(Location((-45, 0, 0), (0, 0, 270))):
            Circle(SKETCH6_R)
        with Locations(Location((-31.819805153, -31.819805153, 0), (0, 0, 270))):
            Circle(SKETCH6_R)
        with Locations(Location((0, -45, 0), (0, 0, 270))):
            Circle(SKETCH6_R)
    extrude(amount=CUT_EXTRUDE3_DEPTH + CUT_EXTRUDE3_DEPTH_BACK, mode=Mode.SUBTRACT)


solid = part.part
